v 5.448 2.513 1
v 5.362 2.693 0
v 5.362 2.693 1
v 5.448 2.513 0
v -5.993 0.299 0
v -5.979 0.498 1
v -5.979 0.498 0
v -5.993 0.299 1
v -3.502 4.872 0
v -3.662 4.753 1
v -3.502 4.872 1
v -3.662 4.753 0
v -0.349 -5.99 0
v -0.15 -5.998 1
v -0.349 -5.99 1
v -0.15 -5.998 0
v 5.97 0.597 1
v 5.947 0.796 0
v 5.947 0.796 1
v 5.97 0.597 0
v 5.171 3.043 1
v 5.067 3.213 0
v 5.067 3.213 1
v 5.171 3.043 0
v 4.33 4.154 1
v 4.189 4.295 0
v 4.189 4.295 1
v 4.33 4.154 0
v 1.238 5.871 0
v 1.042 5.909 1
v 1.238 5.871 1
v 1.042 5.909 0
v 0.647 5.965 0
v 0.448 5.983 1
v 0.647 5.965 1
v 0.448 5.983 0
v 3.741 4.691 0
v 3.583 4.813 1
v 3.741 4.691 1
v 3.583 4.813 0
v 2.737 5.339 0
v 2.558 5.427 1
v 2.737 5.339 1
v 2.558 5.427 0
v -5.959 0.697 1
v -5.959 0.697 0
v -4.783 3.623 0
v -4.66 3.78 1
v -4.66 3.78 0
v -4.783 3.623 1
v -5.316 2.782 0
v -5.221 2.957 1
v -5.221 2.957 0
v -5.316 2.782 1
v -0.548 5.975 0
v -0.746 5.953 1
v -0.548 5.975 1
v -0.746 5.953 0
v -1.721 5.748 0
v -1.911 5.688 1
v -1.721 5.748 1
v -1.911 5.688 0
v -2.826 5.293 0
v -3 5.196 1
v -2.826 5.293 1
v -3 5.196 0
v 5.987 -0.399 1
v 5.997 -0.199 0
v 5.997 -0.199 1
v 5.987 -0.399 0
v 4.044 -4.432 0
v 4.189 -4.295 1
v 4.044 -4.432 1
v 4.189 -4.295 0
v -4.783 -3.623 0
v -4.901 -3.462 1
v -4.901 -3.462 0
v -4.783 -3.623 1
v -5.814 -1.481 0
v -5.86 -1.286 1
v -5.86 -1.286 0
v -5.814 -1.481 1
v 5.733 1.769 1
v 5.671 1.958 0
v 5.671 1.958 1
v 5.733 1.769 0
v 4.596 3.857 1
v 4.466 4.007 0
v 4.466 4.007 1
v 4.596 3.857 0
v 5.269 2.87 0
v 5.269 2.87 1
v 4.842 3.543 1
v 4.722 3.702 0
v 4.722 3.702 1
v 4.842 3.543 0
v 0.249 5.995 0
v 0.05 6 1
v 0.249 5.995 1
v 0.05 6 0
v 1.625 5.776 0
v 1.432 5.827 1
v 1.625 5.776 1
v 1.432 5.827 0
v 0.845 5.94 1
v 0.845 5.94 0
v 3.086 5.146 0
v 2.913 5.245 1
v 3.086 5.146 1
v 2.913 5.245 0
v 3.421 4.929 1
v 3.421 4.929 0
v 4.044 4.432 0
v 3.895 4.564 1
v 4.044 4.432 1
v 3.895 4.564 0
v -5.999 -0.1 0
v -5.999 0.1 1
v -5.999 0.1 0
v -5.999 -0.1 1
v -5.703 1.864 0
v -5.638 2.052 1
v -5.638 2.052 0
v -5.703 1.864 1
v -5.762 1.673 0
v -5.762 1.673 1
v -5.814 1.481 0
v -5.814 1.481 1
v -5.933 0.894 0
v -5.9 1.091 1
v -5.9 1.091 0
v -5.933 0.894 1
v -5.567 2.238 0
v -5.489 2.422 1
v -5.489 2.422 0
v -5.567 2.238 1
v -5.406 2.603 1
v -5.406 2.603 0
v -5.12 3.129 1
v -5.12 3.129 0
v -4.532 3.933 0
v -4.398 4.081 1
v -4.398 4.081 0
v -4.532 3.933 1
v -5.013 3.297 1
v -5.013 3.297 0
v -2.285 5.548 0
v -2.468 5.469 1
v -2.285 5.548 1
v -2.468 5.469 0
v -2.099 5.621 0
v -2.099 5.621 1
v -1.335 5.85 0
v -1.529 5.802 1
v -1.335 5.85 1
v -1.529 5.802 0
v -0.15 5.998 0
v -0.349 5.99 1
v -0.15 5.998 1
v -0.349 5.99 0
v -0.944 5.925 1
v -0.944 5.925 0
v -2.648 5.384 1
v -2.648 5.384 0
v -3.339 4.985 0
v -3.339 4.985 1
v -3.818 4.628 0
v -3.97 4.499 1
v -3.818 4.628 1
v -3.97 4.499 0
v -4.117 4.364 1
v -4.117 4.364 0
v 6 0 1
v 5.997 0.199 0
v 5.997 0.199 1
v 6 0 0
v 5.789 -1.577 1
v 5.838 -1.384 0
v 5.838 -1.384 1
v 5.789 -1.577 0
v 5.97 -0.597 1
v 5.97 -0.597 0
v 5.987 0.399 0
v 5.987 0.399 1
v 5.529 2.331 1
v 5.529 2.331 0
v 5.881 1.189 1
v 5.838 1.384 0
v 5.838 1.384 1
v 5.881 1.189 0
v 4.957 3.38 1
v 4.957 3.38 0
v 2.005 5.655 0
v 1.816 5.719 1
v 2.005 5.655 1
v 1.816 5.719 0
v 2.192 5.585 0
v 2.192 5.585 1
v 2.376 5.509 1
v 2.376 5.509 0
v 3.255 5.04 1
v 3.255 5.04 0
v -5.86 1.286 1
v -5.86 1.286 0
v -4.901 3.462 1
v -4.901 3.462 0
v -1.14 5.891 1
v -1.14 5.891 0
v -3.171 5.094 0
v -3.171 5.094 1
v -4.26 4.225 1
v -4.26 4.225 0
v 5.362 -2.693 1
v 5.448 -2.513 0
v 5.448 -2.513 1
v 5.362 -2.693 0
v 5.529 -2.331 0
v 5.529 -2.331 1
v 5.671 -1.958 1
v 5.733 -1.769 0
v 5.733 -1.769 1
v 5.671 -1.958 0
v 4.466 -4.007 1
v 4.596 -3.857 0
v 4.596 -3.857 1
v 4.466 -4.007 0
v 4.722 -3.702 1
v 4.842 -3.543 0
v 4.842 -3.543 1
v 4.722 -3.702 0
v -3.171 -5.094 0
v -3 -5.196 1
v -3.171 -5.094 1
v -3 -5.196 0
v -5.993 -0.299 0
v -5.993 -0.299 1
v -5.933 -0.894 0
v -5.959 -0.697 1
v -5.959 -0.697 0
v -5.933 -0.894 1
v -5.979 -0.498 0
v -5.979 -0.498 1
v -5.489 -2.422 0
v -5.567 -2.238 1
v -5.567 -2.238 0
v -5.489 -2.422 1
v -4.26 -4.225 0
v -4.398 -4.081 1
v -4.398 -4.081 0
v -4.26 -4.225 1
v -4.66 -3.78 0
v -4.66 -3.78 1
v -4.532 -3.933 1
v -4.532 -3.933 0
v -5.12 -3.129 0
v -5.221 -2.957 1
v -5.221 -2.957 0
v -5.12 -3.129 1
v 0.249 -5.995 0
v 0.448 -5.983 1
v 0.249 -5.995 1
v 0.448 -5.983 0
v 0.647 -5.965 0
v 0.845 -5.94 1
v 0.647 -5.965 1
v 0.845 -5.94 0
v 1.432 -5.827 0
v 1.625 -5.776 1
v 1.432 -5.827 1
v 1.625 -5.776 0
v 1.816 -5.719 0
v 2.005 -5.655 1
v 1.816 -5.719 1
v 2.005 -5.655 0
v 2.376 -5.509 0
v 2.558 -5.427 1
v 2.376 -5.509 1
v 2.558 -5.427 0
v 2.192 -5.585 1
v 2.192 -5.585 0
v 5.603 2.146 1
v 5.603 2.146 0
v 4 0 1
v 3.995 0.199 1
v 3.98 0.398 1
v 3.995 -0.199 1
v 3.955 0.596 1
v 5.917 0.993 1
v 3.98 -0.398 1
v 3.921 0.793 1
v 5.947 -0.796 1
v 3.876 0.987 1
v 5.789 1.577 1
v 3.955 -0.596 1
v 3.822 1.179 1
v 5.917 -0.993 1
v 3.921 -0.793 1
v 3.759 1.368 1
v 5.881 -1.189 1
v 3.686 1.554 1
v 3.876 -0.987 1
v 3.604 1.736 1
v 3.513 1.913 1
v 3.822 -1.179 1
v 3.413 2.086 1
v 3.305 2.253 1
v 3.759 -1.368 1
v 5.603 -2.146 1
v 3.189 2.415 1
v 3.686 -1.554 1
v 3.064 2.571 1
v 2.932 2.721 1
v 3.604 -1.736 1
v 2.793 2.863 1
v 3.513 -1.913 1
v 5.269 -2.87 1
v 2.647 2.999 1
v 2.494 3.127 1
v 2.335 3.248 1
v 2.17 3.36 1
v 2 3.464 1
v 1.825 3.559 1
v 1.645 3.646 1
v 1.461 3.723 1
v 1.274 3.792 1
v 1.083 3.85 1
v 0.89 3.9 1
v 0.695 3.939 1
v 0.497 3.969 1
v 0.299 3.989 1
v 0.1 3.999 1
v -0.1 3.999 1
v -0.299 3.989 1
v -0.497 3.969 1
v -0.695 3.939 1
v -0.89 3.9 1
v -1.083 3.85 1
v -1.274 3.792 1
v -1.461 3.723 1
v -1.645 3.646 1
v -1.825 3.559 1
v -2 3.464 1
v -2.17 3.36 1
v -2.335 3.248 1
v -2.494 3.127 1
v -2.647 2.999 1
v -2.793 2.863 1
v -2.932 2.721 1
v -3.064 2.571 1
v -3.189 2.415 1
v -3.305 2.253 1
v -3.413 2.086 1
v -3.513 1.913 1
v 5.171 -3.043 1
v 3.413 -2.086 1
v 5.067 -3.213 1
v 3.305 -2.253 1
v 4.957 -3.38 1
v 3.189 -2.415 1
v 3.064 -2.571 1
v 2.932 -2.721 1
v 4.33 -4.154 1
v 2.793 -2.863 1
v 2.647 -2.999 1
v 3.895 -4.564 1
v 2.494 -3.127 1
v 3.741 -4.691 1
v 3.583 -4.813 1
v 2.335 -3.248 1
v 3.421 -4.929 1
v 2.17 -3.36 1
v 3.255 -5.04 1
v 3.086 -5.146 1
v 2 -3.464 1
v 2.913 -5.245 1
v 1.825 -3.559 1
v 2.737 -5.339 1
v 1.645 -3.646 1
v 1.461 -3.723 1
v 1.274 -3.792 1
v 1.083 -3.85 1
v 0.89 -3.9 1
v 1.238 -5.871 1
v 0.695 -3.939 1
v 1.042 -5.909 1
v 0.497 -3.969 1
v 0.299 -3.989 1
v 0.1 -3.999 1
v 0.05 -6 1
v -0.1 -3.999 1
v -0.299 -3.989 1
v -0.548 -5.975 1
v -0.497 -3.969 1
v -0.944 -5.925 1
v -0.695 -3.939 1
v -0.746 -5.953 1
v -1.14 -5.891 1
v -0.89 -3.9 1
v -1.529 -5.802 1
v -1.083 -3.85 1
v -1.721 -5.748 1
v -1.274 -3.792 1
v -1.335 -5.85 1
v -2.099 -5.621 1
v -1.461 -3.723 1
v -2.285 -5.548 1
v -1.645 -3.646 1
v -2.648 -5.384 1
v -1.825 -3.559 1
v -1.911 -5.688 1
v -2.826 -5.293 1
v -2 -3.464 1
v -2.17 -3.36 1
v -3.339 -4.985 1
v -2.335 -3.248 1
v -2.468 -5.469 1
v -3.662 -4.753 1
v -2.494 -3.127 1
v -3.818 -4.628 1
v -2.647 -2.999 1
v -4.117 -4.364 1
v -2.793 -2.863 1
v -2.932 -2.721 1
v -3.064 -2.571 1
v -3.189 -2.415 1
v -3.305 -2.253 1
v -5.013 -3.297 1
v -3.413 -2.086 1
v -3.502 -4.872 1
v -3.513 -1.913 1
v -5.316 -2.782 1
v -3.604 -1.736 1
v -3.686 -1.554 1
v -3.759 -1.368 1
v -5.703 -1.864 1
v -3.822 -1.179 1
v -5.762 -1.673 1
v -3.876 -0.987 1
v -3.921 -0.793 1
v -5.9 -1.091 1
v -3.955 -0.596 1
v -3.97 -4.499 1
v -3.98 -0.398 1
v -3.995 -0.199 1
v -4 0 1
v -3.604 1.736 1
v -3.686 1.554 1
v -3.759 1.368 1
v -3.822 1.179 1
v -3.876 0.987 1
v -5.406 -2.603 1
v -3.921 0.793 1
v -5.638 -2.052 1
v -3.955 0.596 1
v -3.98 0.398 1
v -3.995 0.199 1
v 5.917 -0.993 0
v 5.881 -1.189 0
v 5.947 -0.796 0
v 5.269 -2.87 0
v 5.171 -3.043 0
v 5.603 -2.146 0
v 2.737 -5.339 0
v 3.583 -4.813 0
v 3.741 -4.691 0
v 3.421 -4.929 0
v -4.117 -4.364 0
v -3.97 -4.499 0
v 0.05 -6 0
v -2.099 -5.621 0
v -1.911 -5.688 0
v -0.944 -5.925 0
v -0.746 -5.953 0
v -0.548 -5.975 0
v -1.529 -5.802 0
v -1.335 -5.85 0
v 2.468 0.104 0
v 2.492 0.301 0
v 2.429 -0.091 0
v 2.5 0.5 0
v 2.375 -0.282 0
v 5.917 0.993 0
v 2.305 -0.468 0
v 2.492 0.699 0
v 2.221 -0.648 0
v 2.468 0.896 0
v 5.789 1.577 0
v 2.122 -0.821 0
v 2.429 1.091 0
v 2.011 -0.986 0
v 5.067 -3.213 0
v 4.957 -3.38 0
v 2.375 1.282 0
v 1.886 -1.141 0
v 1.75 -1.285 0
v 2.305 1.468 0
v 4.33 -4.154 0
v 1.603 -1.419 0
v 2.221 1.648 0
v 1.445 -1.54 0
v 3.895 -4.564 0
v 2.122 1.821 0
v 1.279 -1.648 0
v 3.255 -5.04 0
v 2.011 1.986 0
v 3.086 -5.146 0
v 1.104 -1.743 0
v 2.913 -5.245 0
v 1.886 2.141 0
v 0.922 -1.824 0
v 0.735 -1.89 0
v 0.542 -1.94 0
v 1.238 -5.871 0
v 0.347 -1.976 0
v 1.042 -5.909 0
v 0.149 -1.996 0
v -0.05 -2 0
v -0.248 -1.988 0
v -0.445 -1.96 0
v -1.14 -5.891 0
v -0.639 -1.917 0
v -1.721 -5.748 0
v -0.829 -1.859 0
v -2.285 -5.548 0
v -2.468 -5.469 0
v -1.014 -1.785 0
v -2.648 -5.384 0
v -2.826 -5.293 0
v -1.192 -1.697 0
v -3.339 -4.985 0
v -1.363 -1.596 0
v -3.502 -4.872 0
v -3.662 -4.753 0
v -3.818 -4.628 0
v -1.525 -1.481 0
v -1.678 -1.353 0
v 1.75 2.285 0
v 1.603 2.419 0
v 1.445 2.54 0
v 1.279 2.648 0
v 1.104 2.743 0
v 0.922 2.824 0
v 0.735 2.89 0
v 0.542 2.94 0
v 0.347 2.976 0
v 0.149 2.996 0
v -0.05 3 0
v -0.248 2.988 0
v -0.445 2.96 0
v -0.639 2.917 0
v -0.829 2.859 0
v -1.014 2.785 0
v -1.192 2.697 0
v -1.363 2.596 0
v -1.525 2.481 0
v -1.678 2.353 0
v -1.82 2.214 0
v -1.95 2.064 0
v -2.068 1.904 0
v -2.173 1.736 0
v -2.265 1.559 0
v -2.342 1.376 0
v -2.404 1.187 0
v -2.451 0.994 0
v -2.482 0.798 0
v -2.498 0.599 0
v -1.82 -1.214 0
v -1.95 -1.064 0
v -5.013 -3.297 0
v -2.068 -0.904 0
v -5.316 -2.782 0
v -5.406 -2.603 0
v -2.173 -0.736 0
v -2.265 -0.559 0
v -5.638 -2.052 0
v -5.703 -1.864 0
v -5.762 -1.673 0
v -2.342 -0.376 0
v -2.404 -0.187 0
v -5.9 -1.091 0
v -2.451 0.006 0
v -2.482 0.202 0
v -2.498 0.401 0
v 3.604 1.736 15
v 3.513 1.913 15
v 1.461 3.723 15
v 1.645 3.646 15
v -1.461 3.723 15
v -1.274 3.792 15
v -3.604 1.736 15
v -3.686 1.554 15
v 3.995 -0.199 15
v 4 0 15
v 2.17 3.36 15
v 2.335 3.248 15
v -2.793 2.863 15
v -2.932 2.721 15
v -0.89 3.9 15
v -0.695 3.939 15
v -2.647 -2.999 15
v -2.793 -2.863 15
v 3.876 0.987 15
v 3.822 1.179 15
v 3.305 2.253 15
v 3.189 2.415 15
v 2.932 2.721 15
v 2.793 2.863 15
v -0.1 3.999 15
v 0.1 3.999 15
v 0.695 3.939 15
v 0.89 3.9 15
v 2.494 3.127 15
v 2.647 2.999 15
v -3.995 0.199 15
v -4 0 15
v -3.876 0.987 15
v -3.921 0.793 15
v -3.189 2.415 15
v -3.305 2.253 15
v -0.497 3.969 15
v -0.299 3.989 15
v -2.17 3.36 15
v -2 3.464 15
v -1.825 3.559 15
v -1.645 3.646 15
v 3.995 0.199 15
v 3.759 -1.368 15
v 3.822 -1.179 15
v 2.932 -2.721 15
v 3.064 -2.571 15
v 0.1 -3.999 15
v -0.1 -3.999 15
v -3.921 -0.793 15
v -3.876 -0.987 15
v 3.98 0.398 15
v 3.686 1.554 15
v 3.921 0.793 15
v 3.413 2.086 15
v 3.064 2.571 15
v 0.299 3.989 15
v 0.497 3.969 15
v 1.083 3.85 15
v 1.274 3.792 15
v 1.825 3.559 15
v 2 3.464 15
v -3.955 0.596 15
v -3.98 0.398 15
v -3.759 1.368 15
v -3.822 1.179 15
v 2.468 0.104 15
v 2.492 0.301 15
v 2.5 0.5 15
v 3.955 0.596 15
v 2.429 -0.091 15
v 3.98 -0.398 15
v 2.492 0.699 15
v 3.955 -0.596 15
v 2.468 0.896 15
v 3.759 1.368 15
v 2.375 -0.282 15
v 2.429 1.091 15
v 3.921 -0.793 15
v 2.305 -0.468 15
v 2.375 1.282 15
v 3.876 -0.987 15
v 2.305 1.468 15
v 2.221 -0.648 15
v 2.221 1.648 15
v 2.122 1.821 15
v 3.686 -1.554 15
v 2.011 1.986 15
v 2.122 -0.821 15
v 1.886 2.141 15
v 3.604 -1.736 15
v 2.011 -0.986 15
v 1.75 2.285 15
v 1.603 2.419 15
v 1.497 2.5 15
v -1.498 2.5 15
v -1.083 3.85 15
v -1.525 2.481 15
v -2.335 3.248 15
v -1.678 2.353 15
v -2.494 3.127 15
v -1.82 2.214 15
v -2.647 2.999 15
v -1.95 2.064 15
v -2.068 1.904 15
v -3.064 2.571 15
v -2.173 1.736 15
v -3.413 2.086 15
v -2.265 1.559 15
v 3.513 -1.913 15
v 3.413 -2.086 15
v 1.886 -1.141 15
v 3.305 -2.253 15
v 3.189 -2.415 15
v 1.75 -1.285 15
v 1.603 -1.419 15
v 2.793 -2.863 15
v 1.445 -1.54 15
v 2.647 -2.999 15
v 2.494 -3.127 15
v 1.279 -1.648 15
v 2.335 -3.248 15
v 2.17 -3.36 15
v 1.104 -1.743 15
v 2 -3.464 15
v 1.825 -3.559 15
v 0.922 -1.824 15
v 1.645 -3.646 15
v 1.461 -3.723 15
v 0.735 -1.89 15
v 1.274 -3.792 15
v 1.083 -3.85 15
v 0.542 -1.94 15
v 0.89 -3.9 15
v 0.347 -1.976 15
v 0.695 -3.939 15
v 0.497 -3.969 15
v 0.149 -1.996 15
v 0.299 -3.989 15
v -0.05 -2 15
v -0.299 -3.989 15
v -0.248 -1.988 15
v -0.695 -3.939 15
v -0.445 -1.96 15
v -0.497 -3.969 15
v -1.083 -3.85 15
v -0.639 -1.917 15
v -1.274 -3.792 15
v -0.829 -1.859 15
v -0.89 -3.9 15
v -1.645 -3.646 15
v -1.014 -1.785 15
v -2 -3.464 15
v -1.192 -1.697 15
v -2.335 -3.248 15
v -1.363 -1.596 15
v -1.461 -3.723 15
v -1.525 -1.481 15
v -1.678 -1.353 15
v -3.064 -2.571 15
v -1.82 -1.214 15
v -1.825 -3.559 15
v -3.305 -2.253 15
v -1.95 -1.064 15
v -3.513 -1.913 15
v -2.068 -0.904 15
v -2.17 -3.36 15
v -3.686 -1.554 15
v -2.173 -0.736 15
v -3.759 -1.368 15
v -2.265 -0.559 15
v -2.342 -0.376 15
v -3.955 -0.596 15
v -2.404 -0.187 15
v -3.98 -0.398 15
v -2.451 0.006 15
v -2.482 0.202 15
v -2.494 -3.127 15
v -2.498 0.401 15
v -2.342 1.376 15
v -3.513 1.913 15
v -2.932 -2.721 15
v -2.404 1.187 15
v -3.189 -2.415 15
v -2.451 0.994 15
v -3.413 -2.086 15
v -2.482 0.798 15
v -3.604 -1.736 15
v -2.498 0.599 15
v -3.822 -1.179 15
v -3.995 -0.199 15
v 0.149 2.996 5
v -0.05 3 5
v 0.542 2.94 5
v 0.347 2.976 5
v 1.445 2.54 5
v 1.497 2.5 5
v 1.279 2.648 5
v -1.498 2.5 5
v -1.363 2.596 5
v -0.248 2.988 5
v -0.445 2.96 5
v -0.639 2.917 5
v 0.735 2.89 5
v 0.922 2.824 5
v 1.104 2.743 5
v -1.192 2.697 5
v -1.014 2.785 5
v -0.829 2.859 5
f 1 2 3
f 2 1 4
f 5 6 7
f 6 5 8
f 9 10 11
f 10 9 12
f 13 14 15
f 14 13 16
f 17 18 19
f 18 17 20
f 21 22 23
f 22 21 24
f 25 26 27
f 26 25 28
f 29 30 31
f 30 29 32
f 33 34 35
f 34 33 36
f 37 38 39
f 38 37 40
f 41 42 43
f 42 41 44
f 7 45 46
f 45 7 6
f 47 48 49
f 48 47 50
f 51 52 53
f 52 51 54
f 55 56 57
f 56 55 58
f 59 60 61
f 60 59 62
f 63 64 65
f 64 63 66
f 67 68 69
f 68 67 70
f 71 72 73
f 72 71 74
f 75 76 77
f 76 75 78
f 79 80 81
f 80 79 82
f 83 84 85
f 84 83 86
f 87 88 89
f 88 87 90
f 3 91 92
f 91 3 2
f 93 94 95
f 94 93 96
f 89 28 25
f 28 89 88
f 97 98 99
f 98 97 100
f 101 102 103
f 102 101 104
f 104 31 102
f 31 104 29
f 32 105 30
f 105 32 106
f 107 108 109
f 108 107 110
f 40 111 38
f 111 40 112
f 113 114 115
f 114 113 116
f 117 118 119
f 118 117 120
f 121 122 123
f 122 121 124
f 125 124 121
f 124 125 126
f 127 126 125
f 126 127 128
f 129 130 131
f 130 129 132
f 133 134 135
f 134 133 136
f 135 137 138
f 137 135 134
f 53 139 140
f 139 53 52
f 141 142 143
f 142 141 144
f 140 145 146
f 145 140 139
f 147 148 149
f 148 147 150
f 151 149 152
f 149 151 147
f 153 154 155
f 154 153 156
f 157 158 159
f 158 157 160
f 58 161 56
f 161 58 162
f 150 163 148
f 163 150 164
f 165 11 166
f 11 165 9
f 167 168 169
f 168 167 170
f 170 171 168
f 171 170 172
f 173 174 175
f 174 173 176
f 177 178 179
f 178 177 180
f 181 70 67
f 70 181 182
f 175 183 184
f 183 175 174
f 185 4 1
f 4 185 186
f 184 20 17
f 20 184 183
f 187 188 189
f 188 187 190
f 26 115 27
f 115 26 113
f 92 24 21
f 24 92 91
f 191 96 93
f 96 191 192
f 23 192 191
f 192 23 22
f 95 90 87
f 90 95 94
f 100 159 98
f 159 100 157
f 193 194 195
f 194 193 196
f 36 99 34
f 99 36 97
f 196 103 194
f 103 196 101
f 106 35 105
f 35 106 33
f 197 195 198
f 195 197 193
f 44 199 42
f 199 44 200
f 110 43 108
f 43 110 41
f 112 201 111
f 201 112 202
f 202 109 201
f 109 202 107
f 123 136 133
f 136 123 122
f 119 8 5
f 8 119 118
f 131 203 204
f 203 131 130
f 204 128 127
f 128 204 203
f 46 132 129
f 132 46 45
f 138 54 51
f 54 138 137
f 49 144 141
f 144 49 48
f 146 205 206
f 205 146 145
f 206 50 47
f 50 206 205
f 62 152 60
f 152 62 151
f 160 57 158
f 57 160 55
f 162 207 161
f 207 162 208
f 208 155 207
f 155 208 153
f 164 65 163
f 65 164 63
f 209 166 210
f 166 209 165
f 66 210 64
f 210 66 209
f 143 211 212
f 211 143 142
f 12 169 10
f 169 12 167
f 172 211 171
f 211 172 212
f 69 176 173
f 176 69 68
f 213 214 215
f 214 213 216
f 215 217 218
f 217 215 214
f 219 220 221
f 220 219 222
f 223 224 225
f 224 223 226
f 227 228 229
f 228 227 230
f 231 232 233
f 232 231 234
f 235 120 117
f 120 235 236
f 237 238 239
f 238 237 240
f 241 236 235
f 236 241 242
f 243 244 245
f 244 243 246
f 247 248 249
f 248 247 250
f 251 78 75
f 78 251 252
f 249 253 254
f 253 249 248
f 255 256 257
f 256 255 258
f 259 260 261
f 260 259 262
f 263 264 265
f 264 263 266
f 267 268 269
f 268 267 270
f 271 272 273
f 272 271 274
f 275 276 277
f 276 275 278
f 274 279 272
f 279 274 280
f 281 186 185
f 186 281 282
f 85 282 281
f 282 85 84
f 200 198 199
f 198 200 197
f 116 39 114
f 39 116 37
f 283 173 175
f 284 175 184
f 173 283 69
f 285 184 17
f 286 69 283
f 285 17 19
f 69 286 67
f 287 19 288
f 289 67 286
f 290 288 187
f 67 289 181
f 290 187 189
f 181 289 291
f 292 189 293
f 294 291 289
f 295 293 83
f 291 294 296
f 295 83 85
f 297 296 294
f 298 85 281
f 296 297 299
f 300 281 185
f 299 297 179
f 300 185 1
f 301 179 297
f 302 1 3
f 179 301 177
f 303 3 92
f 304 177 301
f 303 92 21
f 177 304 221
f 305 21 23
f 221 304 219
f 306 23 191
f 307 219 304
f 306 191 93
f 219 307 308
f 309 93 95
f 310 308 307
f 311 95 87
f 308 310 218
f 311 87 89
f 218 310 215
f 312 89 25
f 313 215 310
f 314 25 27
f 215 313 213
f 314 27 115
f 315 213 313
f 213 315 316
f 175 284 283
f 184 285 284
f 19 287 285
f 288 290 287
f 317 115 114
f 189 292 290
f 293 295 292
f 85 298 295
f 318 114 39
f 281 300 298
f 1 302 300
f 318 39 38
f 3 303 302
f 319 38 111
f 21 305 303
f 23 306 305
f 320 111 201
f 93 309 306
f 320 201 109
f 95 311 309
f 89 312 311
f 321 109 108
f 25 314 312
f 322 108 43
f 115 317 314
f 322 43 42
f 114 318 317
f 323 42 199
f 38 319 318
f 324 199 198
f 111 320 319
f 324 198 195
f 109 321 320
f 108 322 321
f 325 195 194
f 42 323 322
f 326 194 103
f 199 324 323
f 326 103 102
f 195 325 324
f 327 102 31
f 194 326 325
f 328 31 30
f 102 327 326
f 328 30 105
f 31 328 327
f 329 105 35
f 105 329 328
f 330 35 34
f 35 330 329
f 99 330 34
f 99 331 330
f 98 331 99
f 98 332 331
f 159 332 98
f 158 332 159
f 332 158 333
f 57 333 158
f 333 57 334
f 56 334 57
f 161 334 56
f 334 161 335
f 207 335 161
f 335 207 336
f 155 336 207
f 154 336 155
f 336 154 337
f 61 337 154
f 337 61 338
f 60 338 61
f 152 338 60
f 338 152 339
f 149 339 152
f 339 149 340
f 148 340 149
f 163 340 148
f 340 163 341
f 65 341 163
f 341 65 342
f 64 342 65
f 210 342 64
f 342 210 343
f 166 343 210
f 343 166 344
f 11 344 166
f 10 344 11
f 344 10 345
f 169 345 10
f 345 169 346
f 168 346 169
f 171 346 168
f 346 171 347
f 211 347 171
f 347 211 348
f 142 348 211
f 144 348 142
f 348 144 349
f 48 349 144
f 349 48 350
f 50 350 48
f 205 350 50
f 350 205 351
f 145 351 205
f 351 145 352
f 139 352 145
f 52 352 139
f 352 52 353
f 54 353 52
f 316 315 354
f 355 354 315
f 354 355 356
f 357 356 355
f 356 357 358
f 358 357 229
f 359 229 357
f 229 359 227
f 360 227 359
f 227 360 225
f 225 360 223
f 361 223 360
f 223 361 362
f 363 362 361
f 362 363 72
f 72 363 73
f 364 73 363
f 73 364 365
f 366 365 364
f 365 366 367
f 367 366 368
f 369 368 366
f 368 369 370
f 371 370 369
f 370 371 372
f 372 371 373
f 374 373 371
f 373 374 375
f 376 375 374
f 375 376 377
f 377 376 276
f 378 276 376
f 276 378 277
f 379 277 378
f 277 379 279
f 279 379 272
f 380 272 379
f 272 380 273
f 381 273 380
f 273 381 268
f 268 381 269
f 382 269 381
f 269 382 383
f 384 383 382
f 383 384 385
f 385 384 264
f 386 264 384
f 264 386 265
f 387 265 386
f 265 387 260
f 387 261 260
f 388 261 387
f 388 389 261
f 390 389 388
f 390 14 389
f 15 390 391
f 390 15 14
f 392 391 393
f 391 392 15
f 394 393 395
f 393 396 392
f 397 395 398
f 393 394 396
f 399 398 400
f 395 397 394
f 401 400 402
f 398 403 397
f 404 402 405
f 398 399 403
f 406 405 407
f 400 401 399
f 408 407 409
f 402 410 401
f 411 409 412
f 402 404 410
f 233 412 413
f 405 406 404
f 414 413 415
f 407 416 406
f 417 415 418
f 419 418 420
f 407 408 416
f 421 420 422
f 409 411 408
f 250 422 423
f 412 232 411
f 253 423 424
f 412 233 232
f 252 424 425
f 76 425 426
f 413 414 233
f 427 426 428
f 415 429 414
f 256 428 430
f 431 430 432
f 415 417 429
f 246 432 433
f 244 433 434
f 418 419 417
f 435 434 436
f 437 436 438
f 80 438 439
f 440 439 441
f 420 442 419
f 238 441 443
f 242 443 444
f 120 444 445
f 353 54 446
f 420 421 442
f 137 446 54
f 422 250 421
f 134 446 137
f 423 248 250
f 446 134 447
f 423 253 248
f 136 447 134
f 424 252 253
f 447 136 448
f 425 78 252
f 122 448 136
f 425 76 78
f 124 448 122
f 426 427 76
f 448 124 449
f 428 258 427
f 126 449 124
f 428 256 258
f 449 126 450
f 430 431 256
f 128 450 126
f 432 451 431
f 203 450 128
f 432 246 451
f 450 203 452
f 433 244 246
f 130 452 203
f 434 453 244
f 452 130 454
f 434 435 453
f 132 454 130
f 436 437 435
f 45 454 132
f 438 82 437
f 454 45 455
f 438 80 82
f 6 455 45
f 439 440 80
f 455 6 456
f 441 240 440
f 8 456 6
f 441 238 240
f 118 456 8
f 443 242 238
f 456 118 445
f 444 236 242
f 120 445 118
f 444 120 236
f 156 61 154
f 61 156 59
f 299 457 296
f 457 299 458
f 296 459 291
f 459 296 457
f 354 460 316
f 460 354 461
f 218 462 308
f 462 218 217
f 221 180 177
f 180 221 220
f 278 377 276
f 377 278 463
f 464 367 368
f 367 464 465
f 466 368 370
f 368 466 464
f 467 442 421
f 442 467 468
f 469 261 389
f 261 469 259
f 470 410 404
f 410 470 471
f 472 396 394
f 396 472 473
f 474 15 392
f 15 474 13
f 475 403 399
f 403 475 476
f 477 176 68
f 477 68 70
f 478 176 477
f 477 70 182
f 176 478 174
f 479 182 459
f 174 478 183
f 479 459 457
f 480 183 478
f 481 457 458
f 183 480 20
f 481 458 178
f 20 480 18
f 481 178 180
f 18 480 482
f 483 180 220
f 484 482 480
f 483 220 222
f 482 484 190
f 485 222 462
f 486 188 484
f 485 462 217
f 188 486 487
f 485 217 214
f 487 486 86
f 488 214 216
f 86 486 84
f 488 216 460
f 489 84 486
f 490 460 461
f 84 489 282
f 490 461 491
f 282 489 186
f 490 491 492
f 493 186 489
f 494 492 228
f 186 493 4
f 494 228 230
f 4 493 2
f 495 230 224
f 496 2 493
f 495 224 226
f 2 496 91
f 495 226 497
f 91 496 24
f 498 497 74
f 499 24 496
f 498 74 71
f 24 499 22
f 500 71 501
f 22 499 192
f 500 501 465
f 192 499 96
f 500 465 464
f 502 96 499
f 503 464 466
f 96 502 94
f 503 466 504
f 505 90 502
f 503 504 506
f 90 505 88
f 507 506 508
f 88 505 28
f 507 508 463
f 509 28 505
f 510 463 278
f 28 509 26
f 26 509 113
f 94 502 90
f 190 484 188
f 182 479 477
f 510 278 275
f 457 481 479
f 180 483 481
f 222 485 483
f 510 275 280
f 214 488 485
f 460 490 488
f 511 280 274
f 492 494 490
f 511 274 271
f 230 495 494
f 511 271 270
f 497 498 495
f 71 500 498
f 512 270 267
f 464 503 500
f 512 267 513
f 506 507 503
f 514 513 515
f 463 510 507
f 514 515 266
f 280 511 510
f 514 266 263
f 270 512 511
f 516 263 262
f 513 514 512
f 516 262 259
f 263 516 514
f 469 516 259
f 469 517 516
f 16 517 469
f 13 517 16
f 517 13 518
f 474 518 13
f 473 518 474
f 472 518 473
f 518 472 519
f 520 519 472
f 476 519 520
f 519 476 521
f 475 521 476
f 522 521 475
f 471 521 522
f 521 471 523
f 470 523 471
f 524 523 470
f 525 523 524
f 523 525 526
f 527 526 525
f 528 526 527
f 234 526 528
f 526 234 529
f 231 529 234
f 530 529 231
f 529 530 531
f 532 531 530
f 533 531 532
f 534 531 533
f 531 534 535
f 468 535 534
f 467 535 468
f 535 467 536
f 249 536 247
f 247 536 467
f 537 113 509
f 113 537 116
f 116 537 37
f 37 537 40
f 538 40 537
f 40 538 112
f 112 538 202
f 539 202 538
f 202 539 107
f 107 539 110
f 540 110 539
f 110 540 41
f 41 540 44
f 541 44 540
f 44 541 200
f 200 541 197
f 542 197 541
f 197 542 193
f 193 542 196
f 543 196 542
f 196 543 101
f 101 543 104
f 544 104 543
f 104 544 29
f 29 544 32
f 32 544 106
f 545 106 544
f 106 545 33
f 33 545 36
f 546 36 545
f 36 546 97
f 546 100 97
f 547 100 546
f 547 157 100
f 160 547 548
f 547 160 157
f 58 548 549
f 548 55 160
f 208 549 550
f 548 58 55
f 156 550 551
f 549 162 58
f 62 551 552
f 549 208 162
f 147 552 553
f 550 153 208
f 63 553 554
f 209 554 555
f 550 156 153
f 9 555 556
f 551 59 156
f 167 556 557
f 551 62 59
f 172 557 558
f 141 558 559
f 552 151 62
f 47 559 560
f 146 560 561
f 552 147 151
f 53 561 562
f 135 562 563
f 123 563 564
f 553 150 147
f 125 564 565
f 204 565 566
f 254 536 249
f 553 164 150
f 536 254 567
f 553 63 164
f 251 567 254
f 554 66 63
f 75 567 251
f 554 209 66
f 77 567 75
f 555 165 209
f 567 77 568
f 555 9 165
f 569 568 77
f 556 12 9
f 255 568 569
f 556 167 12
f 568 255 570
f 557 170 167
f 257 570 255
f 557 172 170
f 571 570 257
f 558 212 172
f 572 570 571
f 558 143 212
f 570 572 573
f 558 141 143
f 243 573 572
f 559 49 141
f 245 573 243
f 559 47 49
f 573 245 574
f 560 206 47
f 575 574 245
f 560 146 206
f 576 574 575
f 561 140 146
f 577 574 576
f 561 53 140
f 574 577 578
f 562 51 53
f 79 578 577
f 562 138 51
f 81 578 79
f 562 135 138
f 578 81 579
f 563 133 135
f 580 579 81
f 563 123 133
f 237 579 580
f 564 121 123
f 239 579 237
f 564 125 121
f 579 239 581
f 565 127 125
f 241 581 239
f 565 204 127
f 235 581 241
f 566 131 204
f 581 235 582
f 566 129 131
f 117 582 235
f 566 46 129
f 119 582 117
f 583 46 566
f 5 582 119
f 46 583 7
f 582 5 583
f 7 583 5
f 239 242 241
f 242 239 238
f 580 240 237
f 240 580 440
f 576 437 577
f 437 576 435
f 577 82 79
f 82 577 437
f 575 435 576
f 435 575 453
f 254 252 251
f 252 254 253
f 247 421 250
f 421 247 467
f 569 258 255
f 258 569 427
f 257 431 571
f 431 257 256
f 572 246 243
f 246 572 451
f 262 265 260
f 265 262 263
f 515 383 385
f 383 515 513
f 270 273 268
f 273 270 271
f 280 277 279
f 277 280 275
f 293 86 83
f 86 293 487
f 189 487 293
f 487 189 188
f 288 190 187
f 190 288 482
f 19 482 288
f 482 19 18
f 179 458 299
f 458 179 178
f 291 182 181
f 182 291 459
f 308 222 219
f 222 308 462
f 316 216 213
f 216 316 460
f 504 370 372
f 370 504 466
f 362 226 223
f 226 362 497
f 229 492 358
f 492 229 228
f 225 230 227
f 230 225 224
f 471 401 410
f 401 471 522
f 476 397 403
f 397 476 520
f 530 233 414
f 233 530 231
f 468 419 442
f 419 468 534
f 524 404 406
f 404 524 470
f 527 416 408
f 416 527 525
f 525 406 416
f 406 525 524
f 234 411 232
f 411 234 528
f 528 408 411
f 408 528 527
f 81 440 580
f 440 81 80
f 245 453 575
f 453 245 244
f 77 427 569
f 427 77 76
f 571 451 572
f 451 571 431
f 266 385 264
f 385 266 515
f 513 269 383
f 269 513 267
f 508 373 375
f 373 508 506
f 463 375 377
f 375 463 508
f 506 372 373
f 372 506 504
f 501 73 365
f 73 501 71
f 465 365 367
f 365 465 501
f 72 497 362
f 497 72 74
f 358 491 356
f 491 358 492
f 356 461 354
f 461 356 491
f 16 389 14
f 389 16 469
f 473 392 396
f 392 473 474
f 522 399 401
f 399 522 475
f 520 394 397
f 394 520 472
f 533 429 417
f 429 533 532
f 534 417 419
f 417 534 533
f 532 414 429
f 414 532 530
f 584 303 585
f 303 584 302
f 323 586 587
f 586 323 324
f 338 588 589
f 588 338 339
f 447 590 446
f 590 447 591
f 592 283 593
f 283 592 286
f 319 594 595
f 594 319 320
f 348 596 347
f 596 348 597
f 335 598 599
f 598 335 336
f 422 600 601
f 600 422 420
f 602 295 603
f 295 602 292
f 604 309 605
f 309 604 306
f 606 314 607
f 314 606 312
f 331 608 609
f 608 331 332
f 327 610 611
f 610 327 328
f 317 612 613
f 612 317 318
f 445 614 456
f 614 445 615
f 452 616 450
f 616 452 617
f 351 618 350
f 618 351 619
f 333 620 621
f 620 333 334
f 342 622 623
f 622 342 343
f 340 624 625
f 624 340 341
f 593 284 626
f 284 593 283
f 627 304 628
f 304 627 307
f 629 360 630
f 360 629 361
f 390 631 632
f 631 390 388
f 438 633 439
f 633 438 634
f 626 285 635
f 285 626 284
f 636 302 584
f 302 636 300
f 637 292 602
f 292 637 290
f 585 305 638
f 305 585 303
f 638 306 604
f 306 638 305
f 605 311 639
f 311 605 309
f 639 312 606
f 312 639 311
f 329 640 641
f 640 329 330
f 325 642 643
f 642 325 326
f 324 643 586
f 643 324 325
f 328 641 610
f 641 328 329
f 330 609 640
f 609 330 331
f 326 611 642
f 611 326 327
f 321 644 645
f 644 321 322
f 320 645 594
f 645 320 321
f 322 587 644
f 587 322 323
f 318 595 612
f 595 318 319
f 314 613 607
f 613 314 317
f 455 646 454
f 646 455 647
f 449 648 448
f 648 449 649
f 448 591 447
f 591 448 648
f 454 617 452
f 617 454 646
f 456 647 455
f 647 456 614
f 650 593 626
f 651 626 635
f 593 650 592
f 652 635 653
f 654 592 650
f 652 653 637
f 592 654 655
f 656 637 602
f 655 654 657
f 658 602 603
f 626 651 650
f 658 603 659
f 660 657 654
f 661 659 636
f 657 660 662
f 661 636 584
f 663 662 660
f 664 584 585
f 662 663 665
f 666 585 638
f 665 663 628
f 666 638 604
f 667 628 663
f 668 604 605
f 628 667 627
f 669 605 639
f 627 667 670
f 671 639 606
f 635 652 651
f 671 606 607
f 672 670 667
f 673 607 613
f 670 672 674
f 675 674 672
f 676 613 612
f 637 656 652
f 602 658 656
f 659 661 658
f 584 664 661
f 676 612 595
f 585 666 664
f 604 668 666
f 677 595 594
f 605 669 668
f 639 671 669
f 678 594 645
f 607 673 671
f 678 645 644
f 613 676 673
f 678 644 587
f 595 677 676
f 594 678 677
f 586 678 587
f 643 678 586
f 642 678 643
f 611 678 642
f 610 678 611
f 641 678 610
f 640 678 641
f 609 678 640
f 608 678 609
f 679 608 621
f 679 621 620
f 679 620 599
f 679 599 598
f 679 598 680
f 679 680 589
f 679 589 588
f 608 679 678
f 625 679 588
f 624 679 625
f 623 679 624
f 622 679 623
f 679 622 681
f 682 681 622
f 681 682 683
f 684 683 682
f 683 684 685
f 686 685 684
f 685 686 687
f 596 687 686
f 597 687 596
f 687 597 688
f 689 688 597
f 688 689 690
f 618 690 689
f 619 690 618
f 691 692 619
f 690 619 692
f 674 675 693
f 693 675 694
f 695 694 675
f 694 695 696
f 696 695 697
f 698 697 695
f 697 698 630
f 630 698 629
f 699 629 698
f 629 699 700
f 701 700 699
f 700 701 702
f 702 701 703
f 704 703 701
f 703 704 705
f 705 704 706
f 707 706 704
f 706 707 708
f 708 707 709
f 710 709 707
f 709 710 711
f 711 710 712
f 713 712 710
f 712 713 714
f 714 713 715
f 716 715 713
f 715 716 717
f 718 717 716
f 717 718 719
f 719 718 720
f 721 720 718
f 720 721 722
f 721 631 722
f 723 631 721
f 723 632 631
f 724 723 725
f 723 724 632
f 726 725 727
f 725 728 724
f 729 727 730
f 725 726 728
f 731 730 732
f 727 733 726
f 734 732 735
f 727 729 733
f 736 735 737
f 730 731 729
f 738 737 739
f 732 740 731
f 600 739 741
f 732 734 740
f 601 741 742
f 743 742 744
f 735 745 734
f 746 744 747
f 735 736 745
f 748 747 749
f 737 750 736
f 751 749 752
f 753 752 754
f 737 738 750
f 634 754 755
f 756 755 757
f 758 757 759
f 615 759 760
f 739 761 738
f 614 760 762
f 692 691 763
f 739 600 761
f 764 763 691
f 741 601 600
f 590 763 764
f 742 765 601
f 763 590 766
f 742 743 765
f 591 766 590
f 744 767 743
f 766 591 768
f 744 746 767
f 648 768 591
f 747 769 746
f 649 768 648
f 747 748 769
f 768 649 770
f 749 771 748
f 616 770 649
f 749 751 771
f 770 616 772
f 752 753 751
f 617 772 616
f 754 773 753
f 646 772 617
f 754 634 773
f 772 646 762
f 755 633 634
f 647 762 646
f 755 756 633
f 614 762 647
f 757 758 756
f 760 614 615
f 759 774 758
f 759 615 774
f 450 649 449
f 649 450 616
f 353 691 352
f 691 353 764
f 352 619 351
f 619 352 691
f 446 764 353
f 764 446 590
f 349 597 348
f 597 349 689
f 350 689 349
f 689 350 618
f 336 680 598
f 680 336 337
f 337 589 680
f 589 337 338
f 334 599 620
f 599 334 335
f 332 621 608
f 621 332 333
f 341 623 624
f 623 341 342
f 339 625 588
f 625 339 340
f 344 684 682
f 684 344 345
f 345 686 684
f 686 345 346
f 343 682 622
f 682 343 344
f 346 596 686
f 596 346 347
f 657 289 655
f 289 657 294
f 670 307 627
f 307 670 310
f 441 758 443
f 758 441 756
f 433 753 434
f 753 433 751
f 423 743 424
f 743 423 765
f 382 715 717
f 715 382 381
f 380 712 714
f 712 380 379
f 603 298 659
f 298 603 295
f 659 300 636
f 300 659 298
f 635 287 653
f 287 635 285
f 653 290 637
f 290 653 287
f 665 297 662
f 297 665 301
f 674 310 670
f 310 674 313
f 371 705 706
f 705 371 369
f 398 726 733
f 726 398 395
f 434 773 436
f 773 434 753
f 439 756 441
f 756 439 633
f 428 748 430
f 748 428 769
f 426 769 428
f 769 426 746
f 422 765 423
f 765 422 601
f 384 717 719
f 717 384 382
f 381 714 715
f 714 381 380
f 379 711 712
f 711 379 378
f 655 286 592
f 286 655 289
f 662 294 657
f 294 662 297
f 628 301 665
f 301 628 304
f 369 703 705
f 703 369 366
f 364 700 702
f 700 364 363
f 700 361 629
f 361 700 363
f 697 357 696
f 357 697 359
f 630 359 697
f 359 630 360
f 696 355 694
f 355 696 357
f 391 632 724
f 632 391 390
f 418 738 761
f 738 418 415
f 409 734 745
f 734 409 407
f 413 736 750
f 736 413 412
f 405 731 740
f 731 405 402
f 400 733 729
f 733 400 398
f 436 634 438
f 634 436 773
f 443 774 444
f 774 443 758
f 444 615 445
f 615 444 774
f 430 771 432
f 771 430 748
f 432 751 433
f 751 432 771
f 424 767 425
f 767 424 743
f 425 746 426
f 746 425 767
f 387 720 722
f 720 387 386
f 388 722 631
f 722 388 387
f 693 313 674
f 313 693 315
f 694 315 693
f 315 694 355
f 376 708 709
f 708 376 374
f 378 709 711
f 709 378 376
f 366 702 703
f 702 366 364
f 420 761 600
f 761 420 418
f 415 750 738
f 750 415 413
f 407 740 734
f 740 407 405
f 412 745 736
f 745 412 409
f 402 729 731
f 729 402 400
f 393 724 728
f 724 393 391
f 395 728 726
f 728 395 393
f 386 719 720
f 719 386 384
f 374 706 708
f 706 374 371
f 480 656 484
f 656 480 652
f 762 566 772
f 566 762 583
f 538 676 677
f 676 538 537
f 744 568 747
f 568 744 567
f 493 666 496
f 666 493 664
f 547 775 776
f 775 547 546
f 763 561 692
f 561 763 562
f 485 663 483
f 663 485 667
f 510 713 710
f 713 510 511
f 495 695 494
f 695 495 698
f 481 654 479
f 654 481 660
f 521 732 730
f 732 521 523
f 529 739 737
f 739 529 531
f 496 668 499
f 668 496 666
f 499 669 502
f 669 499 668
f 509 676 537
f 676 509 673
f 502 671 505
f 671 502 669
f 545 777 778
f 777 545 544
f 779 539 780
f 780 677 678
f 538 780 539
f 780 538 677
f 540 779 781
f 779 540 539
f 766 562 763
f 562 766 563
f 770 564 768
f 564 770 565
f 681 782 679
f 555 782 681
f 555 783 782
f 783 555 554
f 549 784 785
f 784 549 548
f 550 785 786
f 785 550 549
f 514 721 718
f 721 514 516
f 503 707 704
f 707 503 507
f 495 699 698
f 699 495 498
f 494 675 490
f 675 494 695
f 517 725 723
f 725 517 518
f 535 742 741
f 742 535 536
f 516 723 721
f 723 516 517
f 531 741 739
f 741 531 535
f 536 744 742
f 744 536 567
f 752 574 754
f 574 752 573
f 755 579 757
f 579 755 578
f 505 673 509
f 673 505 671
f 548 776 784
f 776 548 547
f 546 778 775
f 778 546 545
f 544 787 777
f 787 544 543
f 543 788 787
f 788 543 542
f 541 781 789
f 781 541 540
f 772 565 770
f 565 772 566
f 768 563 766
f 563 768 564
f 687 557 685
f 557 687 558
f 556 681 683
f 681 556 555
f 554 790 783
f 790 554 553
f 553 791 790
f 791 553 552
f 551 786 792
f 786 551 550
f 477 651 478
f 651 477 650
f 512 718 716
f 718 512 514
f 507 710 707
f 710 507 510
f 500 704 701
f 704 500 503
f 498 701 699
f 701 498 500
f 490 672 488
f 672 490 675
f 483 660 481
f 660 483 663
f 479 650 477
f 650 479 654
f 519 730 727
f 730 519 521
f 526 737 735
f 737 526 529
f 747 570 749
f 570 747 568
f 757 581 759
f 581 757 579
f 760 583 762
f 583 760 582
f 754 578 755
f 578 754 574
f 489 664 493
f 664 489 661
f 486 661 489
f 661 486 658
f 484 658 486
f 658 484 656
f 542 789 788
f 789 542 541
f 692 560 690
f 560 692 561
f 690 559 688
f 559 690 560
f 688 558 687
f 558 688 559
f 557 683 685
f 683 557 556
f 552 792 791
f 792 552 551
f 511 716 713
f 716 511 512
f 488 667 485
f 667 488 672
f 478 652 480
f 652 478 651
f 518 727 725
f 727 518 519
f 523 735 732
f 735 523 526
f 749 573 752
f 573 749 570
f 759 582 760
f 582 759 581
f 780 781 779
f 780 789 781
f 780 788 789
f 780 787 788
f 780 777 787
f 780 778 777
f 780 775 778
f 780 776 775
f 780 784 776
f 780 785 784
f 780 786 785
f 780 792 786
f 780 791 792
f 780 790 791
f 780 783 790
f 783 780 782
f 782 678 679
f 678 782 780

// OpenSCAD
// file: util.scad
$fa=.2;
$fs=.2;

$RED=[1,0,0,1];
$RED_D=[.5,0,0,1];
$RED_L=[1,.5,.5,1];

$GREEN=[0,1,0,1];
$GREEN_D=[0,.5,0,1];
$GREEN_L=[.5,1,.5,1];

$BLUE=[0,0,1,1];
$BLUE_D=[0,0,.5,1];
$BLUE_L=[.5,.5,1,1];

$YELLOW=[1,1,0,1];
$YELLOW_D=[.5,.5,0,1];
$YELLOW_L=[1,1,.5,1];

module t(x,y,z) translate([x,y,z]) children();
module tx(x) t(x,0,0) children();
module ty(y) t(0,y,0) children();
module tz(z) t(0,0,z) children();

module r(x,y,z) rotate([x,y,z]) children();
module rx(x) r(x,0,0) children();
module ry(y) r(0,y,0) children();
module rz(z) r(0,0,z) children();

module s(x,y,z) scale([x,y,z]) children();
module sx(x) s(x,1,1) children();
module sy(y) s(1,y,1) children();
module sz(z) s(1,1,z) children();

module c(r,g,b) color([r,g,b,1]) children();
module ca(r,g,b,a) color([r,g,b,a]) children();
module col(c) color(c) children();

module box(x,y,z) cube([x,y,z]);
module cyl(h,r) cylinder(h,r,r);
module hcyl(h,R,r) difference() { cyl(h,R); tz(-1) cyl(h+2,r); }
module poly(coords) polygon(coords);
// main file
use <util.scad>;

// spacer
difference () {
	union() {
		cyl(1,6);
		tz(1) cyl(14,4);
	}
	ty(.5) difference() {
		cyl(21,2.5);
		t(-2,2,5) box(4,4,16);
	}
}
